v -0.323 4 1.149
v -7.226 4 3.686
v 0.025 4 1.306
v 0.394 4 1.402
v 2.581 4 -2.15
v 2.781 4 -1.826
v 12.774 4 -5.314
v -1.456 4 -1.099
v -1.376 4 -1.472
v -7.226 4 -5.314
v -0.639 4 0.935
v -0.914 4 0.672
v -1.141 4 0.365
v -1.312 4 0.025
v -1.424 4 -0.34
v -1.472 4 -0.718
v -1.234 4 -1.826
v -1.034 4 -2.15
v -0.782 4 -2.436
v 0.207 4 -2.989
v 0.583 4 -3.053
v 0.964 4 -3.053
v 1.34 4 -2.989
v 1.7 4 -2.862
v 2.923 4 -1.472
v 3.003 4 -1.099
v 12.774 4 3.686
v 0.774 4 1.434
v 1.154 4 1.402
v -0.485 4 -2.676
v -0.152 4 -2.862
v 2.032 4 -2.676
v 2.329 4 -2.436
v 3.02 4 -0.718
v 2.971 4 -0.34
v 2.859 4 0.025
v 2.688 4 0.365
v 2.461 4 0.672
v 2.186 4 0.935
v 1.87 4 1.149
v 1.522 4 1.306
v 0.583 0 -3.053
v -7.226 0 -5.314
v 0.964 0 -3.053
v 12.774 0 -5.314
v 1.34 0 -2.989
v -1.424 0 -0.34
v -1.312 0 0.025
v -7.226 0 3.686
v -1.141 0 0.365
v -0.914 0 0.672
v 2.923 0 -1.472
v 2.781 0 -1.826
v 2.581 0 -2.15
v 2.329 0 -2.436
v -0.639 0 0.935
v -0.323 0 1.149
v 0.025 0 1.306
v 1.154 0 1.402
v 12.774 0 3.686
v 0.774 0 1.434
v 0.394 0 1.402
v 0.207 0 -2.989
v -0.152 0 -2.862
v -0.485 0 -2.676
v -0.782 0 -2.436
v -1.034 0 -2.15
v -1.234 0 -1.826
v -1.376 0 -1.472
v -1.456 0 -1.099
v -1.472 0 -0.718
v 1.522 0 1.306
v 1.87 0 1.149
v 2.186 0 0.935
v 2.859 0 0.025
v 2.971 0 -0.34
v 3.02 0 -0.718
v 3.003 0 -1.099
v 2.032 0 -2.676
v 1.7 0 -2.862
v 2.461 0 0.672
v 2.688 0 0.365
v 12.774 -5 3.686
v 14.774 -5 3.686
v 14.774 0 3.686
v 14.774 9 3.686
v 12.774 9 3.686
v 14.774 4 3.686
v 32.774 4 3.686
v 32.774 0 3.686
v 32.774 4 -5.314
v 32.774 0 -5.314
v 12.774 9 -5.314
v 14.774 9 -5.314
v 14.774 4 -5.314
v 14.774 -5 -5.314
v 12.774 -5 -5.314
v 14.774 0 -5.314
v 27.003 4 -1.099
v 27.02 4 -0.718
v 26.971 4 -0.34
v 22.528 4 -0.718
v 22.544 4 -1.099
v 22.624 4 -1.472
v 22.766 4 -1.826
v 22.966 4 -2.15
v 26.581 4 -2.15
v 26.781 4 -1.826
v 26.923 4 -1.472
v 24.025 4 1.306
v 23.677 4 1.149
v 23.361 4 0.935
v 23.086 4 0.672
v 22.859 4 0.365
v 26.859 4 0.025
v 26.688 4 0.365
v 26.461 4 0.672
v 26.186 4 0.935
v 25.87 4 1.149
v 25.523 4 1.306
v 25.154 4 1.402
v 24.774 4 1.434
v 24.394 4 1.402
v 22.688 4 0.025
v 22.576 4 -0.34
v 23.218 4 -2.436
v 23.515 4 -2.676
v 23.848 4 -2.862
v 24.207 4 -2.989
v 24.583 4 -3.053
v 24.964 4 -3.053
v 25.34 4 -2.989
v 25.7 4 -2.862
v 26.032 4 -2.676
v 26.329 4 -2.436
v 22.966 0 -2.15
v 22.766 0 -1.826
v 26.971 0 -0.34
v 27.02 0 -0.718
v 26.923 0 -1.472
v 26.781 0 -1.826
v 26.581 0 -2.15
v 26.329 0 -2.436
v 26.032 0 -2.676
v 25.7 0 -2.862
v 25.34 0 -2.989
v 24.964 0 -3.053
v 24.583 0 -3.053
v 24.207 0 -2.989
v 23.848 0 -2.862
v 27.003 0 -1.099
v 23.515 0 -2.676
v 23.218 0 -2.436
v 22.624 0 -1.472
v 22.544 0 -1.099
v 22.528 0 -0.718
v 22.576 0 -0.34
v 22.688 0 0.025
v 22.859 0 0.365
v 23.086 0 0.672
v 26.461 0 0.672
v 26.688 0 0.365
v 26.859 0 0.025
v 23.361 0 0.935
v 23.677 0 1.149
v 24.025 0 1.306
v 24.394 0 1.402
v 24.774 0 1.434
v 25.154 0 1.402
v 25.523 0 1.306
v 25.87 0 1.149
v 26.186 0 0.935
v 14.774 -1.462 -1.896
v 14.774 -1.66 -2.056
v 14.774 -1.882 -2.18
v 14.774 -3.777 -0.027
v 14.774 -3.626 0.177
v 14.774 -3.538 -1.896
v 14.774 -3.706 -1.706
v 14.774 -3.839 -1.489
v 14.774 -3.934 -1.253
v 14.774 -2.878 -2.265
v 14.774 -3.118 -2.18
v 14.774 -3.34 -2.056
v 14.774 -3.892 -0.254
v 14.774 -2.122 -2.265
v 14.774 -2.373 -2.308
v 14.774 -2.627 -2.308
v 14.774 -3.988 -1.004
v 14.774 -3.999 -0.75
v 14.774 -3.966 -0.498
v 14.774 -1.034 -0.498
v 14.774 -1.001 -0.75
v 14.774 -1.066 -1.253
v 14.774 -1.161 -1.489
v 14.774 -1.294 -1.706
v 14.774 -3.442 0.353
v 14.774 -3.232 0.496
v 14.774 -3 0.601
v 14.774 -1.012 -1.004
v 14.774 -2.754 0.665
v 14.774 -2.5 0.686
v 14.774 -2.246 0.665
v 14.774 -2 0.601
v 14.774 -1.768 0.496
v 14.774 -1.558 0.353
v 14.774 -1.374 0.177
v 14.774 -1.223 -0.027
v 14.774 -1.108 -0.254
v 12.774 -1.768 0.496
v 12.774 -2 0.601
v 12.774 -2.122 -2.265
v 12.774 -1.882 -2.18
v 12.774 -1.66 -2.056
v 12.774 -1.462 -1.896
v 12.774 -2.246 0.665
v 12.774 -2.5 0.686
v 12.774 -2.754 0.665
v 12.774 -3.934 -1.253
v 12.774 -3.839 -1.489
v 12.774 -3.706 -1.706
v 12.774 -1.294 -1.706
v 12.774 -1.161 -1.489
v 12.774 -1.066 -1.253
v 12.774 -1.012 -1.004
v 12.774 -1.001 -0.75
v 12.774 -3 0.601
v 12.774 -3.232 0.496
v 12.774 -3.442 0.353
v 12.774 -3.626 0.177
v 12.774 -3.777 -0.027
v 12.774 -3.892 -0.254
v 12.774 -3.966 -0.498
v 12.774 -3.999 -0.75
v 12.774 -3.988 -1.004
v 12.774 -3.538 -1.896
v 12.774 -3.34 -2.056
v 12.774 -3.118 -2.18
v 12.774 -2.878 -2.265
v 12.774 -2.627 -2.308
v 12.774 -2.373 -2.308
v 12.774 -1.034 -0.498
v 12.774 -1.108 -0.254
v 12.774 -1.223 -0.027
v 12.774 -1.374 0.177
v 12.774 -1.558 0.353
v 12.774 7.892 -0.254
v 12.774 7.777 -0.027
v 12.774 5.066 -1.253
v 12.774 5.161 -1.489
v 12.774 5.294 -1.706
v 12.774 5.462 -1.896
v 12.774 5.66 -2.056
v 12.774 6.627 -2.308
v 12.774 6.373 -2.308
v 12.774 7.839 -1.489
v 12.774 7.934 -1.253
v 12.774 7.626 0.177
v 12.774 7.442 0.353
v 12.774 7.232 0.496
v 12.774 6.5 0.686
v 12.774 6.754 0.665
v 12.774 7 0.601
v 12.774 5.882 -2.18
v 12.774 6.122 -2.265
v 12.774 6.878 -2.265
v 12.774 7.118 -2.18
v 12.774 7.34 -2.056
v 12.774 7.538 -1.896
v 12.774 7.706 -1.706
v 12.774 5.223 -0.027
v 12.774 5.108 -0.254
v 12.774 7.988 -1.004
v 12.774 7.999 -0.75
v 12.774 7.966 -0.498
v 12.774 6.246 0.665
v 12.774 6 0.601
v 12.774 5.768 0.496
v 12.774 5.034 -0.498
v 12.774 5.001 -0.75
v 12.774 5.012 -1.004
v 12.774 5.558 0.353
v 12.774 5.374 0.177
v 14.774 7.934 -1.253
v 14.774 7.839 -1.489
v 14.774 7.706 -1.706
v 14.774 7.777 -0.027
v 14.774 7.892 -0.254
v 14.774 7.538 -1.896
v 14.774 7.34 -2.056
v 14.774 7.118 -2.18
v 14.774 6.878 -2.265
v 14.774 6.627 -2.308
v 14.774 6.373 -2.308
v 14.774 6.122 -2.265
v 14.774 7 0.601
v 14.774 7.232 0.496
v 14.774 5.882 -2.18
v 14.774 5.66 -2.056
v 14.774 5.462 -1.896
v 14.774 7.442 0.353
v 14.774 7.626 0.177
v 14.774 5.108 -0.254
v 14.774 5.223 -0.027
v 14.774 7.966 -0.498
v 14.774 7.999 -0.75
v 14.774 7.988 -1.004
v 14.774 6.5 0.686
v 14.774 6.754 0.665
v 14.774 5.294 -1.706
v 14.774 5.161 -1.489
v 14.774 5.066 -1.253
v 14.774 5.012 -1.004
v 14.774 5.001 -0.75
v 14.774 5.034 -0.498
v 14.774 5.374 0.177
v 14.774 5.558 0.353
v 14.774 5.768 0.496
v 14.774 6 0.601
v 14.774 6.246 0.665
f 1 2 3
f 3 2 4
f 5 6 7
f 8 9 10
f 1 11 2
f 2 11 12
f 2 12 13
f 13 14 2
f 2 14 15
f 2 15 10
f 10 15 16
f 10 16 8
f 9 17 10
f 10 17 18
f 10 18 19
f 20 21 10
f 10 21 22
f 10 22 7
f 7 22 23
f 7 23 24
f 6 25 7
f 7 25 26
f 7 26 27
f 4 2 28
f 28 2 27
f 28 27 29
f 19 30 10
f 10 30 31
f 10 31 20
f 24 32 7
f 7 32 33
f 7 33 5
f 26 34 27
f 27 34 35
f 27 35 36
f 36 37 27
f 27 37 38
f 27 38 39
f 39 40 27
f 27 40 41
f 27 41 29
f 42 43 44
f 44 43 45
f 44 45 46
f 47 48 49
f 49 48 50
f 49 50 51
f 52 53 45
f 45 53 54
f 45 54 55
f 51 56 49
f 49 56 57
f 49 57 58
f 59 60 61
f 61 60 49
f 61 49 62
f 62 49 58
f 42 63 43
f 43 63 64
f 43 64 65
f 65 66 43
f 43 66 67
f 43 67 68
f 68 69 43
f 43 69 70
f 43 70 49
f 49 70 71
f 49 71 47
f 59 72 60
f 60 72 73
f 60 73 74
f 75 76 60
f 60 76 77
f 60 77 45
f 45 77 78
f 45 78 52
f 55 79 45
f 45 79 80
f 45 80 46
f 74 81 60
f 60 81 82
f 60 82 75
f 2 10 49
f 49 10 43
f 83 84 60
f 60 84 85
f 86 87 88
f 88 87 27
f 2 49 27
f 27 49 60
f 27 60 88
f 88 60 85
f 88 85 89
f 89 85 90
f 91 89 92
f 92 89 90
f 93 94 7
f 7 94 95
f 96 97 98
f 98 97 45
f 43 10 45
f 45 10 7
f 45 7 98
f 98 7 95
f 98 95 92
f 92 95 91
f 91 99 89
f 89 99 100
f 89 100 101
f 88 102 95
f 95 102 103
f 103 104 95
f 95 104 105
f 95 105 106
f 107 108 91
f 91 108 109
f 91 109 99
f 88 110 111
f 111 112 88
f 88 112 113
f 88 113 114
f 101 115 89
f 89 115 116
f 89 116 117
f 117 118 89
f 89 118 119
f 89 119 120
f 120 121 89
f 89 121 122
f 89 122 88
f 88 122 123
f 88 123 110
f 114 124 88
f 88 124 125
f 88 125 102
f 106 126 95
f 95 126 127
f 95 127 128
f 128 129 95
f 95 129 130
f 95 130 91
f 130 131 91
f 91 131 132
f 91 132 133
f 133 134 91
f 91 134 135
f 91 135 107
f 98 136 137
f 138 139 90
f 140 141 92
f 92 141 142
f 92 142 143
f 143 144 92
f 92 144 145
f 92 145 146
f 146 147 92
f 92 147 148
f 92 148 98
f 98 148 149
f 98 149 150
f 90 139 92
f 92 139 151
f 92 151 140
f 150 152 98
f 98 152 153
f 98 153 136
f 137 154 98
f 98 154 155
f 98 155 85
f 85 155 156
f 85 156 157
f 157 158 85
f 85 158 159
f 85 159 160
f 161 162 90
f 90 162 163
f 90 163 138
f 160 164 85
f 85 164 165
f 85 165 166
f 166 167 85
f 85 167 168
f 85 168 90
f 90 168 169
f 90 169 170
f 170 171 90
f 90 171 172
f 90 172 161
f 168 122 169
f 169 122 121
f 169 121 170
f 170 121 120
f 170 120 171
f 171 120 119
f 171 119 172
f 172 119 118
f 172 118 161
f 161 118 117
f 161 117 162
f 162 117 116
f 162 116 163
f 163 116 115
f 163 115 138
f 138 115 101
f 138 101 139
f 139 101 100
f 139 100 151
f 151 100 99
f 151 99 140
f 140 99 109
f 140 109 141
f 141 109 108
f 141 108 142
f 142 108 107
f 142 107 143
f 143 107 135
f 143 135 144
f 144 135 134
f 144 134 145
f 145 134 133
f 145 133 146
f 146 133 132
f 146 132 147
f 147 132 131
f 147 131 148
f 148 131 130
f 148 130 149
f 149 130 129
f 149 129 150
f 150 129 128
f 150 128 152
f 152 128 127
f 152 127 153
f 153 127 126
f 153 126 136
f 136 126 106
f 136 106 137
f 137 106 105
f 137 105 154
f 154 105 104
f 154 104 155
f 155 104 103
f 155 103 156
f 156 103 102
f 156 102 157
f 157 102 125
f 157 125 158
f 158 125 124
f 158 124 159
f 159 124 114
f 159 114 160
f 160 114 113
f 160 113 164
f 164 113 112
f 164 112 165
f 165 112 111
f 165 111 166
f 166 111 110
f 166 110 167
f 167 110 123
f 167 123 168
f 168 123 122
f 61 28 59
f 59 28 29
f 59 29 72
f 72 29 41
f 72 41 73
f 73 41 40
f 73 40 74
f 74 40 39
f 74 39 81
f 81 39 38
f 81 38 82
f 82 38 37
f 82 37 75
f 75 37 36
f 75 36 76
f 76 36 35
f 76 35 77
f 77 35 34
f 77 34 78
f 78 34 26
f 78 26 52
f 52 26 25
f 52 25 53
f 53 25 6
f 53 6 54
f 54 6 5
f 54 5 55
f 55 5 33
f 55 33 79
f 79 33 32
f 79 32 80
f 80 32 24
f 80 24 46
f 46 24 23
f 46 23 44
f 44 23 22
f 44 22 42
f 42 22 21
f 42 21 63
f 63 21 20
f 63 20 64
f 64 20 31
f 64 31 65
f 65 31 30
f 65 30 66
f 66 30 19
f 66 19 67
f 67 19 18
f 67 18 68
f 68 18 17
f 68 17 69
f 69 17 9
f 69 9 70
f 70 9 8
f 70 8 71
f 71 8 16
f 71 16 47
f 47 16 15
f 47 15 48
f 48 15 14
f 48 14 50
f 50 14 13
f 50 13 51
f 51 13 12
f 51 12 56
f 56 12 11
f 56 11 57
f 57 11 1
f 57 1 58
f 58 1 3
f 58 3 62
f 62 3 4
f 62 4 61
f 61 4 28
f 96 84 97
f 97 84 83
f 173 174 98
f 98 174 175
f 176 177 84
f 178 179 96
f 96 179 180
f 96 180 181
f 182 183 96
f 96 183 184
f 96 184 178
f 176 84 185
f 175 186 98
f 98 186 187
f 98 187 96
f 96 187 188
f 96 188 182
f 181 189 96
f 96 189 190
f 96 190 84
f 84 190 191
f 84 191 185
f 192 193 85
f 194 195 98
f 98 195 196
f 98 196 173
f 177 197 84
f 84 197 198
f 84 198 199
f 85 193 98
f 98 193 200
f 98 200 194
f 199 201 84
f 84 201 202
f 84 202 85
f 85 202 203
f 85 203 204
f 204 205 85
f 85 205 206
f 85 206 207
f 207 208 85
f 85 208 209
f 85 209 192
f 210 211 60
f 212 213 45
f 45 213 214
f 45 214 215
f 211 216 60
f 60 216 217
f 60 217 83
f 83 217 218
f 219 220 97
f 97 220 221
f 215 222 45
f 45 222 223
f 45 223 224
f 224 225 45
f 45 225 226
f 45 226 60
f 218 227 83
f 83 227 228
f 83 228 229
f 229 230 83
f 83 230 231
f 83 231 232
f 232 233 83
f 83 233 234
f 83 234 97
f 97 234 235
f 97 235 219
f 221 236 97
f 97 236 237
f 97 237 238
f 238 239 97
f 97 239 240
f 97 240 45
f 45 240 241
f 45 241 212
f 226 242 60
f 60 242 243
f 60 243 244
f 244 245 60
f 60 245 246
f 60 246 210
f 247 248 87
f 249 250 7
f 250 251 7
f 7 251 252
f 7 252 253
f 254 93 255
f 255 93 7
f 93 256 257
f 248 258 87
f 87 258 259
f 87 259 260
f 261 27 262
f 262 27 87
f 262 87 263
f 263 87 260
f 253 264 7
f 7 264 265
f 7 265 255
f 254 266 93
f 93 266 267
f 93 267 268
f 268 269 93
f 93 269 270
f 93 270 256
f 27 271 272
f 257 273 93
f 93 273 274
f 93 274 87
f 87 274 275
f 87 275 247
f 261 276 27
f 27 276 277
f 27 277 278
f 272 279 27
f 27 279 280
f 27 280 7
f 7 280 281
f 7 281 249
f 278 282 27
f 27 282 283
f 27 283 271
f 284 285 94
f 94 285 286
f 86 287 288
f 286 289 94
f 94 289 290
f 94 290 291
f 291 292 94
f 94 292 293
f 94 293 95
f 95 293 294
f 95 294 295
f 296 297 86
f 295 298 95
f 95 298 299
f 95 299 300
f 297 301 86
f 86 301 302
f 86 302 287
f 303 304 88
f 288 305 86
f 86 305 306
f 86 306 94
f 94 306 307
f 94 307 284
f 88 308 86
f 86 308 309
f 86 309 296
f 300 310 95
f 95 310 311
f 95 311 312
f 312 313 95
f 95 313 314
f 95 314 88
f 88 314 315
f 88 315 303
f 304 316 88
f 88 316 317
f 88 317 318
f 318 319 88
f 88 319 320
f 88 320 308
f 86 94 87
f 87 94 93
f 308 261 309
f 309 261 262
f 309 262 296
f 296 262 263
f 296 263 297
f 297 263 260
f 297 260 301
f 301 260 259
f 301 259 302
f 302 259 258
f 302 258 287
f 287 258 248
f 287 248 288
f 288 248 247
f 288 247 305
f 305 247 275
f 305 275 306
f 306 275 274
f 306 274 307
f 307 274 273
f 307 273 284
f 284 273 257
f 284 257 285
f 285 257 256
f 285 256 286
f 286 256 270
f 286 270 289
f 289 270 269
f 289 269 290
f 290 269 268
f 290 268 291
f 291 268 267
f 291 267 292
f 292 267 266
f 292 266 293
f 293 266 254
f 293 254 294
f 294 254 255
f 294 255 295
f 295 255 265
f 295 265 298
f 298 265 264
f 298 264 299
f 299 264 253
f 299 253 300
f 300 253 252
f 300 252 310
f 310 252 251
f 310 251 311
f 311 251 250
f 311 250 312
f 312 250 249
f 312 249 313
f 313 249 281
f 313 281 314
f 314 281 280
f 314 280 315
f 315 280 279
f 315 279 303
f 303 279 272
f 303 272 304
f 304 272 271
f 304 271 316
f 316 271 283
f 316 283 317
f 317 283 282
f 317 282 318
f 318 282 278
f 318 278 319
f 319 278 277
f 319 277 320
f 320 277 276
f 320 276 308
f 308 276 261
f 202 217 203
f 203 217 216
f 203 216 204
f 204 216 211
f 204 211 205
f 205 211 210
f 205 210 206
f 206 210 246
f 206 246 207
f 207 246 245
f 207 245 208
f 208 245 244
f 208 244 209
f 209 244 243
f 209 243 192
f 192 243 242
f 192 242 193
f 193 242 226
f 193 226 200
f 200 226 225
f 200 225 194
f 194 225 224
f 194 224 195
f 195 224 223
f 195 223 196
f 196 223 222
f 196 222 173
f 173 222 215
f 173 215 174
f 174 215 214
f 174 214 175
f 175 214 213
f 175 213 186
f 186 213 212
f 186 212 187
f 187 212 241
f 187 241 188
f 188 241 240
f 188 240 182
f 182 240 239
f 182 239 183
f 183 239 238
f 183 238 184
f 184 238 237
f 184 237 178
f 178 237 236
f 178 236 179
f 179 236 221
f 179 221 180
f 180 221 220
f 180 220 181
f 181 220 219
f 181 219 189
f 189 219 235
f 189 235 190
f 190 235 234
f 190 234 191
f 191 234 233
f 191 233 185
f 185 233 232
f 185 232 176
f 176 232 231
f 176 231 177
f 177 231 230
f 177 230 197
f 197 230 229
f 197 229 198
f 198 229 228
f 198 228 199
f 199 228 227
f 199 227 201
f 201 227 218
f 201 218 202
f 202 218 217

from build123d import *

# Parameters (mm, degrees)
SKETCH1_W                 = 40
SKETCH1_H                 = 9
BOSS_EXTRUDE1_DEPTH       = 4
F_8_CLEARANCE_HOLE1_D     = 4.4958
F_8_CLEARANCE_HOLE1_DEPTH = 17
F_8_CLEARANCE_HOLE1_TIP   = 1.350674586
SKETCH5_W                 = 2
SKETCH5_H                 = 9
BOSS_EXTRUDE2_DEPTH       = 5
BOSS_EXTRUDE2_DEPTH_BACK  = 9
SKETCH6_R                 = 1.5
CUT_EXTRUDE1_DEPTH        = 2


with BuildPart() as part:
    # Sketch1 → Boss-Extrude1 (new body)
    with BuildSketch(Plane(origin=(0, 0, 0), x_dir=(1, 0, 0), z_dir=(0, 1, 0))):
        with Locations((12.773632998, 0.813559322)):
            Rectangle(SKETCH1_W, SKETCH1_H)
    extrude(amount=BOSS_EXTRUDE1_DEPTH)

    # #8 Clearance Hole1
    with Locations(Plane(origin=(0.773632998, 4, -0.813559322), x_dir=(0, 0, 1), z_dir=(0, 1, 0))):
        with Locations((0, 0), (0, 24)):
            Hole(F_8_CLEARANCE_HOLE1_D / 2, depth=F_8_CLEARANCE_HOLE1_DEPTH)
            with Locations((0, 0, -(F_8_CLEARANCE_HOLE1_DEPTH + F_8_CLEARANCE_HOLE1_TIP / 2))):  # 118° drill point
                Cone(0, F_8_CLEARANCE_HOLE1_D / 2, F_8_CLEARANCE_HOLE1_TIP, mode=Mode.SUBTRACT)

    # Sketch5 → Boss-Extrude2 (add, two sides)
    with BuildSketch(Plane(origin=(0, 4, 0), x_dir=(1, 0, 0), z_dir=(0, 1, 0))) as boss_extrude2_sk:
        with Locations((13.773632998, 0.813559322)):
            Rectangle(SKETCH5_W, SKETCH5_H)
    extrude(amount=BOSS_EXTRUDE2_DEPTH)
    extrude(boss_extrude2_sk.sketch, amount=-BOSS_EXTRUDE2_DEPTH_BACK)

    # Sketch6 → Cut-Extrude1 (cut)
    with BuildSketch(Plane.ZY.offset(-12.773632998)):
        with Locations((-0.813559322, 6.5)):
            Circle(SKETCH6_R)
        with Locations((-0.813559322, -2.5)):
            Circle(SKETCH6_R)
    extrude(amount=-CUT_EXTRUDE1_DEPTH, mode=Mode.SUBTRACT)


solid = part.part
